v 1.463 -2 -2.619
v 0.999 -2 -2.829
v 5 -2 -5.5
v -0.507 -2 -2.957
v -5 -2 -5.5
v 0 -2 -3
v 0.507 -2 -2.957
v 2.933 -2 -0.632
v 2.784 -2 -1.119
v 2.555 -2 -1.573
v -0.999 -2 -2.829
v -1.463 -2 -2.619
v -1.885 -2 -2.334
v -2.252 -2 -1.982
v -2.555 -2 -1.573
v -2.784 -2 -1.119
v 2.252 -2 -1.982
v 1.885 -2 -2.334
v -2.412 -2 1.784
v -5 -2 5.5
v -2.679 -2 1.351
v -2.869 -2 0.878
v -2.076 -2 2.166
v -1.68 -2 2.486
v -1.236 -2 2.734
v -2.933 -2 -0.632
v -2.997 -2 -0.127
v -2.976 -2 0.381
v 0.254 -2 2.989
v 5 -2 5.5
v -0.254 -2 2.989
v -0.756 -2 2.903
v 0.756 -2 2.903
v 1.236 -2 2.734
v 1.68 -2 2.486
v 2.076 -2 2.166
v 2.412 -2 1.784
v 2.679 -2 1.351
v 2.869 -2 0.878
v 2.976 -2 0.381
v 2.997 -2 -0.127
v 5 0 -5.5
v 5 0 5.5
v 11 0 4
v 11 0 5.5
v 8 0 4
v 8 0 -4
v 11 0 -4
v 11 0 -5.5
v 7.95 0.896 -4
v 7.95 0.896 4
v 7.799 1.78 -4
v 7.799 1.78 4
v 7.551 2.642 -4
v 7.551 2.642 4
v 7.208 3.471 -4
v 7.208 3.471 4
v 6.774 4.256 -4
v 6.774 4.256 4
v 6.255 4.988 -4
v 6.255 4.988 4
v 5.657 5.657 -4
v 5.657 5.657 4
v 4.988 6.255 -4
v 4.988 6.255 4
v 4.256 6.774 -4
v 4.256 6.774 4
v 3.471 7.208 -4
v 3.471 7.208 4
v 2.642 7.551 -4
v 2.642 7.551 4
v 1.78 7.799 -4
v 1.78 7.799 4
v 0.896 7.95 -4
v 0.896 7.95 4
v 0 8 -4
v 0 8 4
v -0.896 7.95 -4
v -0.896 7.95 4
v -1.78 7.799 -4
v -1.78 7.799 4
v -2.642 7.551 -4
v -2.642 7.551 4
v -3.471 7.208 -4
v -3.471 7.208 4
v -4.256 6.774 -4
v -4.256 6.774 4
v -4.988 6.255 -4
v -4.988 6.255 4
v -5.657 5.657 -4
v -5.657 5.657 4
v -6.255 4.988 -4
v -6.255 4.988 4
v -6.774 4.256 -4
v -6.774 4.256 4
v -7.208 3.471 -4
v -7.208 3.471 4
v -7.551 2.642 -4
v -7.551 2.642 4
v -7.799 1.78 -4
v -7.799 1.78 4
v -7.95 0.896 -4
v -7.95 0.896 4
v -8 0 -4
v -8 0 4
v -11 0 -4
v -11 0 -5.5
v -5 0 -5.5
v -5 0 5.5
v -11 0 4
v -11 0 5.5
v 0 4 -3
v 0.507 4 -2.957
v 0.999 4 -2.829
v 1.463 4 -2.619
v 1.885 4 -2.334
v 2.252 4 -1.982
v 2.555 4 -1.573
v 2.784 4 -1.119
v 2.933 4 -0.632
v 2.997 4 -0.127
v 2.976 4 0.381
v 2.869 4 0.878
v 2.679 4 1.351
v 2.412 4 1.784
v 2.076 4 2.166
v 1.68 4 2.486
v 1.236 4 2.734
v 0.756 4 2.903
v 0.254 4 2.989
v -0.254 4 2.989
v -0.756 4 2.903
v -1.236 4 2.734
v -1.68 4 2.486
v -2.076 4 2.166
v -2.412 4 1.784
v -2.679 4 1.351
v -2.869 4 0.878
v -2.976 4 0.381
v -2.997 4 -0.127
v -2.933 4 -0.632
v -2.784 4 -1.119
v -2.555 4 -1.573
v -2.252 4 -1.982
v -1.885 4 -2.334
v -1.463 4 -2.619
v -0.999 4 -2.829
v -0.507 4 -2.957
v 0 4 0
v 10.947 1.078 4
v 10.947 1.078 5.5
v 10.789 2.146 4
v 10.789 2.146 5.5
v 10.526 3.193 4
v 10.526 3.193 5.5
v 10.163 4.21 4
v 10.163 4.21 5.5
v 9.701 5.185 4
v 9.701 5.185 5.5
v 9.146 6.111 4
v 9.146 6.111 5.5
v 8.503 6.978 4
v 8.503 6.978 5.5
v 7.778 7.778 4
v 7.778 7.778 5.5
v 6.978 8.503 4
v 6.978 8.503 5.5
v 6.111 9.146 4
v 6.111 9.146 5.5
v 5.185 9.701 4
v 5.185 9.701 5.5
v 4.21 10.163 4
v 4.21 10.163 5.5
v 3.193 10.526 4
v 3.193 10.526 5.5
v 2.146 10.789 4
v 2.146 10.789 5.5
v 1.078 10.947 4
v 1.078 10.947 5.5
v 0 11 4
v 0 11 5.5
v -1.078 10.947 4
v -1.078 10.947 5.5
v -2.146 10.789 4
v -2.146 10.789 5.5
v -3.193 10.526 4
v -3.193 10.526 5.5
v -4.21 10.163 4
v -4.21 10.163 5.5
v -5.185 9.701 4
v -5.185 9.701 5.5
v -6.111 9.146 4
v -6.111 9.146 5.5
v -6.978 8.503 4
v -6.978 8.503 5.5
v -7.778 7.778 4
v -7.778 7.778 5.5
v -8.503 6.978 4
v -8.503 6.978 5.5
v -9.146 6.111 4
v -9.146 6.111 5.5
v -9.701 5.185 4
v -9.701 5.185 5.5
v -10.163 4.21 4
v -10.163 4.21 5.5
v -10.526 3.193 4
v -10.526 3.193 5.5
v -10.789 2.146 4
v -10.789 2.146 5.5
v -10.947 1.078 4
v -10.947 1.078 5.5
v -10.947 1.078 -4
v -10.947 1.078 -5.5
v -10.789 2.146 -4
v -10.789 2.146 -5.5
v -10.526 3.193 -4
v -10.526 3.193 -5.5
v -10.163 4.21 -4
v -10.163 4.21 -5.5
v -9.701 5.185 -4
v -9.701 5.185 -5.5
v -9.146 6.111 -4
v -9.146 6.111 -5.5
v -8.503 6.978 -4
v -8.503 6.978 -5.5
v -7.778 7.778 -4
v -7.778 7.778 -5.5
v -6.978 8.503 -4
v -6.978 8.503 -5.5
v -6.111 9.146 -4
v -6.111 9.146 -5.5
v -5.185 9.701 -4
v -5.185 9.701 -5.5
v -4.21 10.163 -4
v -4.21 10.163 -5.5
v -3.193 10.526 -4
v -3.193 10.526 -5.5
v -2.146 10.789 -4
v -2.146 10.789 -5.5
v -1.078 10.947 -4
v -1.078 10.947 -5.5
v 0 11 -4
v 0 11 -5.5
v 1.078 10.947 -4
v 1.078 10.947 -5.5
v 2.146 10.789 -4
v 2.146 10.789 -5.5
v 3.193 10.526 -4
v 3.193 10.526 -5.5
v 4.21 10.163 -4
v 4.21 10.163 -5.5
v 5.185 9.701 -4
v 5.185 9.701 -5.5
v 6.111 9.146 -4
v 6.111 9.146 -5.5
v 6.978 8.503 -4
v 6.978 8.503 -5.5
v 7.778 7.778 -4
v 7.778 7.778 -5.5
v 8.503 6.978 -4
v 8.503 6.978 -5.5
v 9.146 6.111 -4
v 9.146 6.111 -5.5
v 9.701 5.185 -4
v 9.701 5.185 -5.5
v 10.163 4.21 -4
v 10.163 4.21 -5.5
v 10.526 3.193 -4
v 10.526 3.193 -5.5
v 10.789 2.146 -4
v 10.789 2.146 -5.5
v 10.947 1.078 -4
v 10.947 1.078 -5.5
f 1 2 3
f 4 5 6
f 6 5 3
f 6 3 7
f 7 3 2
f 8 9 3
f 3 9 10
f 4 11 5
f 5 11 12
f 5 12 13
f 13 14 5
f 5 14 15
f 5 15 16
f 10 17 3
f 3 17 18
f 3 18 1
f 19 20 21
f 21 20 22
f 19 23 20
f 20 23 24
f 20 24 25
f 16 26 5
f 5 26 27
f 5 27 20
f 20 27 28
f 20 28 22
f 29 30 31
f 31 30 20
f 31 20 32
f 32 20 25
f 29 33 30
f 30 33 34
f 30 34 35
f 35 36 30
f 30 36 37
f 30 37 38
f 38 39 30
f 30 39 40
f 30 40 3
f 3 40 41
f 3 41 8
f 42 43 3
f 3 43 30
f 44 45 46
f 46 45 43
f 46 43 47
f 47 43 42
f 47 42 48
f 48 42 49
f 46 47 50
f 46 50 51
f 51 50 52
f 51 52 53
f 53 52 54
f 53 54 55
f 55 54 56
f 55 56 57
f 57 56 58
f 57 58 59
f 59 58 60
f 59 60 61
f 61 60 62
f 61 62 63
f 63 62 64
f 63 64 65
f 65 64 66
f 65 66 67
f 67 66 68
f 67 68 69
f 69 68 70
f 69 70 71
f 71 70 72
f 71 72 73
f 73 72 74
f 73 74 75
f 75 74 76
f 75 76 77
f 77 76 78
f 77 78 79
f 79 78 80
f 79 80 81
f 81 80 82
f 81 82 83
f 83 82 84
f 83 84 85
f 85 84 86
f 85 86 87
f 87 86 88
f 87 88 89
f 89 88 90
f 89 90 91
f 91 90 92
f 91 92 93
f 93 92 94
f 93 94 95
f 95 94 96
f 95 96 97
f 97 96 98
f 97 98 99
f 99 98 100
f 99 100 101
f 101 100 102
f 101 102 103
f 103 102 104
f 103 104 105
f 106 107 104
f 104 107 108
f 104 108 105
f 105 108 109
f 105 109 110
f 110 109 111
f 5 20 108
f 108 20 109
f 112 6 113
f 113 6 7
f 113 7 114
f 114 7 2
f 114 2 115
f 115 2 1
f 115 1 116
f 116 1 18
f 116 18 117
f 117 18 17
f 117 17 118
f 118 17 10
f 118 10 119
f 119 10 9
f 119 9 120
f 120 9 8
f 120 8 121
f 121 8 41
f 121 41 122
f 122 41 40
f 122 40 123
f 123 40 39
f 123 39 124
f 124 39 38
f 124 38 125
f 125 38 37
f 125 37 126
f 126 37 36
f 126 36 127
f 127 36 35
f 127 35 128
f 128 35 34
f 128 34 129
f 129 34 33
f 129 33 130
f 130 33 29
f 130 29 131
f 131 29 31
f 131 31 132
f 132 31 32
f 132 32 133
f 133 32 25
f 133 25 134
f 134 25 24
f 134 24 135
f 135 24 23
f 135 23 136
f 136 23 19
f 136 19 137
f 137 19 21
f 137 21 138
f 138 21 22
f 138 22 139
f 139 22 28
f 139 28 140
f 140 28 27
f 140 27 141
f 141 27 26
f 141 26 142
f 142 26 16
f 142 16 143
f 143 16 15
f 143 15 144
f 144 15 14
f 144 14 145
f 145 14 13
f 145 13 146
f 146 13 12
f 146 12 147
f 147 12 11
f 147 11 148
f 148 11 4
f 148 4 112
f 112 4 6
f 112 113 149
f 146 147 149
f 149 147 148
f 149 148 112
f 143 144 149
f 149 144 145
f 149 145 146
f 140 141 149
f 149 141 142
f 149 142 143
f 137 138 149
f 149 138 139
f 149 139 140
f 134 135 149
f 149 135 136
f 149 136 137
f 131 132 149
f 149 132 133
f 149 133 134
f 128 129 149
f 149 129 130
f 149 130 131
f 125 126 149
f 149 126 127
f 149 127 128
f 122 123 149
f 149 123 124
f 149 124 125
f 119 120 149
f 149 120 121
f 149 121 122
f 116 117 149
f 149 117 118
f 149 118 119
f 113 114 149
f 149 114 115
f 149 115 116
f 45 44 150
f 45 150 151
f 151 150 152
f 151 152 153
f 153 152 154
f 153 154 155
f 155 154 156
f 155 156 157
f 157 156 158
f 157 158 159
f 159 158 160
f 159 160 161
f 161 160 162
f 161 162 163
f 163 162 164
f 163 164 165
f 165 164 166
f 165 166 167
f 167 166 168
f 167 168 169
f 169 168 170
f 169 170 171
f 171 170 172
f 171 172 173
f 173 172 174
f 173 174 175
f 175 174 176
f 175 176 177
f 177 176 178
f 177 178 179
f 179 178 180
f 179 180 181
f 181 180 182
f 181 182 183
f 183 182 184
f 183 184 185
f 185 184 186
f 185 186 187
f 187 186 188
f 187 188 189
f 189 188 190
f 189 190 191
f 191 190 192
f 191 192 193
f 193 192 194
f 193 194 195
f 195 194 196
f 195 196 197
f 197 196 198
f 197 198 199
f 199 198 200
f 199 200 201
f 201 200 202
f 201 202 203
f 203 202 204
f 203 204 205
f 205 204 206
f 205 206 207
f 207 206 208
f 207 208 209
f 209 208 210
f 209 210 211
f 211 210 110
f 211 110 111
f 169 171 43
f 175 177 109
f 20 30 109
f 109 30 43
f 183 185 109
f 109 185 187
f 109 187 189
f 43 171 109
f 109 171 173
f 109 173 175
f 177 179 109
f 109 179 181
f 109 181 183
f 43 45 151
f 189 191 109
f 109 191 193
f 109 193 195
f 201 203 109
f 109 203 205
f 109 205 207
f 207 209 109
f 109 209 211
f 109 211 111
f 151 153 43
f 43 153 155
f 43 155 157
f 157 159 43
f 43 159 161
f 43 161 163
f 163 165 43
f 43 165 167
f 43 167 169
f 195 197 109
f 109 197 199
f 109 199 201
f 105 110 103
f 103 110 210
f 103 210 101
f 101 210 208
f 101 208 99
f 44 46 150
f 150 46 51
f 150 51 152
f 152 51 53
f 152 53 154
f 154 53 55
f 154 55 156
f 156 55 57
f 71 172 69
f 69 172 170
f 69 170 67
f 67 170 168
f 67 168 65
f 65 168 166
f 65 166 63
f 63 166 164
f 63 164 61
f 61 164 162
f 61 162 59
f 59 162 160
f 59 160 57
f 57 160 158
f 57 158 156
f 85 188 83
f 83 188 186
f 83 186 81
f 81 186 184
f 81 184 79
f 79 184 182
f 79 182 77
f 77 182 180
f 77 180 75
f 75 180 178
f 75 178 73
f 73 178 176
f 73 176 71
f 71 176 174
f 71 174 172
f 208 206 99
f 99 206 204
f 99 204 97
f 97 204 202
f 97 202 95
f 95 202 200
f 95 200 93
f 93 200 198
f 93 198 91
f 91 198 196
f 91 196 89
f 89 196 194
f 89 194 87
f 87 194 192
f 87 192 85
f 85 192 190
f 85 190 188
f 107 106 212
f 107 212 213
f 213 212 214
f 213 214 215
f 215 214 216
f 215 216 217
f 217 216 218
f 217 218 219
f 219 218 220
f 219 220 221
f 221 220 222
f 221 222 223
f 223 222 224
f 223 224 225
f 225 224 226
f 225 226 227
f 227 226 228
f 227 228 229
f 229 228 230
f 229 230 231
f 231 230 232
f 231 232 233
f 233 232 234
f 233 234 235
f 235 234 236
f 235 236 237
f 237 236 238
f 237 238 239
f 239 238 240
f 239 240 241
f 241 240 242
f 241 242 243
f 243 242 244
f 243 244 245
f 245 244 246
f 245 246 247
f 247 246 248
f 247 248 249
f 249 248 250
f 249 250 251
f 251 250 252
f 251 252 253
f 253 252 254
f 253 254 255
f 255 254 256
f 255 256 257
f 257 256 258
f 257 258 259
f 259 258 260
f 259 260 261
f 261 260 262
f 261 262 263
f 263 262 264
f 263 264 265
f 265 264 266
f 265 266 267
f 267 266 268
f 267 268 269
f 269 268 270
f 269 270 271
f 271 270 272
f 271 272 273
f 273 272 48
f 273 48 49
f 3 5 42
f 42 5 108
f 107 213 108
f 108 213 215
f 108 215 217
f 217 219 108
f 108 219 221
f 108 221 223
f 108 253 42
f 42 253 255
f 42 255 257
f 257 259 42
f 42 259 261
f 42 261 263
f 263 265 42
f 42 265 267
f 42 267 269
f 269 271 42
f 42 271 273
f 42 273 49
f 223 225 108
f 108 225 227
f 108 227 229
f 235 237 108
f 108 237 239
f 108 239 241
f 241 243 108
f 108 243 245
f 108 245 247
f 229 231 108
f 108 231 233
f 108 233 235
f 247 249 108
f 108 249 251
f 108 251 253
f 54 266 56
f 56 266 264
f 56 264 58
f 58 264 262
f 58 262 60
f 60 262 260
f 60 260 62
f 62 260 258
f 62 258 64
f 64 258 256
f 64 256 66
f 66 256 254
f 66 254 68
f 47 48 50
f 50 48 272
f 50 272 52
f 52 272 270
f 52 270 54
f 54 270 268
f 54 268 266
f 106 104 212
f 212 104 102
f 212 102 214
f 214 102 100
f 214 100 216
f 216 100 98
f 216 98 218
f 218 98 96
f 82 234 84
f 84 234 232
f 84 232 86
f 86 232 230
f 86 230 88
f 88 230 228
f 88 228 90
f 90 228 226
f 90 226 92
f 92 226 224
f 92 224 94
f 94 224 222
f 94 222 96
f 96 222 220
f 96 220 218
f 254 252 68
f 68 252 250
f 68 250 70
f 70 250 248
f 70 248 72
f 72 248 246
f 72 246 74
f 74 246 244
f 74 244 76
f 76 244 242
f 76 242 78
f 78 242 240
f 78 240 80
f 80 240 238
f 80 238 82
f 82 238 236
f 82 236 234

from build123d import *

# Parameters (mm, degrees)
CROQUIS1_W              = 5
CROQUIS1_H              = 2
SALIENTE_EXTRUIR1_DEPTH = 4
CROQUIS2_R              = 3
CORTAR_EXTRUIR1_DEPTH   = 6
SALIENTE_EXTRUIR2_START = 1.5
SALIENTE_EXTRUIR2_DEPTH = 1.5


with BuildPart() as part:
    # Croquis1 → Saliente-Extruir1 (new, symmetric)
    with BuildSketch(Plane.XY):
        with BuildLine():
            Line((5, 0), (8, 0))
            ThreePointArc((8, 0), (5.656854249, 5.656854249), (0, 8))
            Line((0, 8), (0, 0))
            Line((0, 0), (5, 0))
        make_face()
        with BuildLine():
            Line((0, 0), (0, 8))
            ThreePointArc((0, 8), (-5.656854249, 5.656854249), (-8, 0))
            Line((-8, 0), (-5, 0))
            Line((-5, 0), (0, 0))
        make_face()
        with BuildLine():
            Line((5, 0), (8, 0))
            ThreePointArc((8, 0), (5.656854249, 5.656854249), (0, 8))
            Line((0, 8), (0, 0))
            Line((0, 0), (5, 0))
        make_face()
        with BuildLine():
            Line((0, 0), (0, 8))
            ThreePointArc((0, 8), (-5.656854249, 5.656854249), (-8, 0))
            Line((-8, 0), (-5, 0))
            Line((-5, 0), (0, 0))
        make_face()
        with Locations((2.5, -1)):
            Rectangle(CROQUIS1_W, CROQUIS1_H)
        with Locations((-2.5, -1)):
            Rectangle(CROQUIS1_W, CROQUIS1_H)
    extrude(amount=SALIENTE_EXTRUIR1_DEPTH, both=True)

    # Croquis2 → Cortar-Extruir1 (cut)
    with BuildSketch(Plane.XZ.offset(2)):
        with Locations(Location((0, 0, 0), (0, 0, 270))):
            Circle(CROQUIS2_R)
    extrude(amount=-CORTAR_EXTRUIR1_DEPTH, mode=Mode.SUBTRACT)

    # Croquis3 → Saliente-Extruir2 (add)
    with BuildSketch(Plane.XY.offset(4).offset(SALIENTE_EXTRUIR2_START)):
        with BuildLine():
            Line((8, 0), (11, 0))
            ThreePointArc((11, 0), (0, 11), (-11, 0))
            Line((-11, 0), (-8, 0))
            ThreePointArc((-8, 0), (0, 8), (8, 0))
        make_face()
        with BuildLine():
            Line((-5, 0), (-5, -2))
            Line((-5, -2), (5, -2))
            Line((5, -2), (5, 0))
            Line((5, 0), (8, 0))
            ThreePointArc((8, 0), (0, 8), (-8, 0))
            Line((-8, 0), (-5, 0))
        make_face()
    saliente_extruir2 = extrude(amount=-SALIENTE_EXTRUIR2_DEPTH)

    # Simetría1: Saliente-Extruir2 across plane
    add(saliente_extruir2.mirror(Plane.XY))


solid = part.part
